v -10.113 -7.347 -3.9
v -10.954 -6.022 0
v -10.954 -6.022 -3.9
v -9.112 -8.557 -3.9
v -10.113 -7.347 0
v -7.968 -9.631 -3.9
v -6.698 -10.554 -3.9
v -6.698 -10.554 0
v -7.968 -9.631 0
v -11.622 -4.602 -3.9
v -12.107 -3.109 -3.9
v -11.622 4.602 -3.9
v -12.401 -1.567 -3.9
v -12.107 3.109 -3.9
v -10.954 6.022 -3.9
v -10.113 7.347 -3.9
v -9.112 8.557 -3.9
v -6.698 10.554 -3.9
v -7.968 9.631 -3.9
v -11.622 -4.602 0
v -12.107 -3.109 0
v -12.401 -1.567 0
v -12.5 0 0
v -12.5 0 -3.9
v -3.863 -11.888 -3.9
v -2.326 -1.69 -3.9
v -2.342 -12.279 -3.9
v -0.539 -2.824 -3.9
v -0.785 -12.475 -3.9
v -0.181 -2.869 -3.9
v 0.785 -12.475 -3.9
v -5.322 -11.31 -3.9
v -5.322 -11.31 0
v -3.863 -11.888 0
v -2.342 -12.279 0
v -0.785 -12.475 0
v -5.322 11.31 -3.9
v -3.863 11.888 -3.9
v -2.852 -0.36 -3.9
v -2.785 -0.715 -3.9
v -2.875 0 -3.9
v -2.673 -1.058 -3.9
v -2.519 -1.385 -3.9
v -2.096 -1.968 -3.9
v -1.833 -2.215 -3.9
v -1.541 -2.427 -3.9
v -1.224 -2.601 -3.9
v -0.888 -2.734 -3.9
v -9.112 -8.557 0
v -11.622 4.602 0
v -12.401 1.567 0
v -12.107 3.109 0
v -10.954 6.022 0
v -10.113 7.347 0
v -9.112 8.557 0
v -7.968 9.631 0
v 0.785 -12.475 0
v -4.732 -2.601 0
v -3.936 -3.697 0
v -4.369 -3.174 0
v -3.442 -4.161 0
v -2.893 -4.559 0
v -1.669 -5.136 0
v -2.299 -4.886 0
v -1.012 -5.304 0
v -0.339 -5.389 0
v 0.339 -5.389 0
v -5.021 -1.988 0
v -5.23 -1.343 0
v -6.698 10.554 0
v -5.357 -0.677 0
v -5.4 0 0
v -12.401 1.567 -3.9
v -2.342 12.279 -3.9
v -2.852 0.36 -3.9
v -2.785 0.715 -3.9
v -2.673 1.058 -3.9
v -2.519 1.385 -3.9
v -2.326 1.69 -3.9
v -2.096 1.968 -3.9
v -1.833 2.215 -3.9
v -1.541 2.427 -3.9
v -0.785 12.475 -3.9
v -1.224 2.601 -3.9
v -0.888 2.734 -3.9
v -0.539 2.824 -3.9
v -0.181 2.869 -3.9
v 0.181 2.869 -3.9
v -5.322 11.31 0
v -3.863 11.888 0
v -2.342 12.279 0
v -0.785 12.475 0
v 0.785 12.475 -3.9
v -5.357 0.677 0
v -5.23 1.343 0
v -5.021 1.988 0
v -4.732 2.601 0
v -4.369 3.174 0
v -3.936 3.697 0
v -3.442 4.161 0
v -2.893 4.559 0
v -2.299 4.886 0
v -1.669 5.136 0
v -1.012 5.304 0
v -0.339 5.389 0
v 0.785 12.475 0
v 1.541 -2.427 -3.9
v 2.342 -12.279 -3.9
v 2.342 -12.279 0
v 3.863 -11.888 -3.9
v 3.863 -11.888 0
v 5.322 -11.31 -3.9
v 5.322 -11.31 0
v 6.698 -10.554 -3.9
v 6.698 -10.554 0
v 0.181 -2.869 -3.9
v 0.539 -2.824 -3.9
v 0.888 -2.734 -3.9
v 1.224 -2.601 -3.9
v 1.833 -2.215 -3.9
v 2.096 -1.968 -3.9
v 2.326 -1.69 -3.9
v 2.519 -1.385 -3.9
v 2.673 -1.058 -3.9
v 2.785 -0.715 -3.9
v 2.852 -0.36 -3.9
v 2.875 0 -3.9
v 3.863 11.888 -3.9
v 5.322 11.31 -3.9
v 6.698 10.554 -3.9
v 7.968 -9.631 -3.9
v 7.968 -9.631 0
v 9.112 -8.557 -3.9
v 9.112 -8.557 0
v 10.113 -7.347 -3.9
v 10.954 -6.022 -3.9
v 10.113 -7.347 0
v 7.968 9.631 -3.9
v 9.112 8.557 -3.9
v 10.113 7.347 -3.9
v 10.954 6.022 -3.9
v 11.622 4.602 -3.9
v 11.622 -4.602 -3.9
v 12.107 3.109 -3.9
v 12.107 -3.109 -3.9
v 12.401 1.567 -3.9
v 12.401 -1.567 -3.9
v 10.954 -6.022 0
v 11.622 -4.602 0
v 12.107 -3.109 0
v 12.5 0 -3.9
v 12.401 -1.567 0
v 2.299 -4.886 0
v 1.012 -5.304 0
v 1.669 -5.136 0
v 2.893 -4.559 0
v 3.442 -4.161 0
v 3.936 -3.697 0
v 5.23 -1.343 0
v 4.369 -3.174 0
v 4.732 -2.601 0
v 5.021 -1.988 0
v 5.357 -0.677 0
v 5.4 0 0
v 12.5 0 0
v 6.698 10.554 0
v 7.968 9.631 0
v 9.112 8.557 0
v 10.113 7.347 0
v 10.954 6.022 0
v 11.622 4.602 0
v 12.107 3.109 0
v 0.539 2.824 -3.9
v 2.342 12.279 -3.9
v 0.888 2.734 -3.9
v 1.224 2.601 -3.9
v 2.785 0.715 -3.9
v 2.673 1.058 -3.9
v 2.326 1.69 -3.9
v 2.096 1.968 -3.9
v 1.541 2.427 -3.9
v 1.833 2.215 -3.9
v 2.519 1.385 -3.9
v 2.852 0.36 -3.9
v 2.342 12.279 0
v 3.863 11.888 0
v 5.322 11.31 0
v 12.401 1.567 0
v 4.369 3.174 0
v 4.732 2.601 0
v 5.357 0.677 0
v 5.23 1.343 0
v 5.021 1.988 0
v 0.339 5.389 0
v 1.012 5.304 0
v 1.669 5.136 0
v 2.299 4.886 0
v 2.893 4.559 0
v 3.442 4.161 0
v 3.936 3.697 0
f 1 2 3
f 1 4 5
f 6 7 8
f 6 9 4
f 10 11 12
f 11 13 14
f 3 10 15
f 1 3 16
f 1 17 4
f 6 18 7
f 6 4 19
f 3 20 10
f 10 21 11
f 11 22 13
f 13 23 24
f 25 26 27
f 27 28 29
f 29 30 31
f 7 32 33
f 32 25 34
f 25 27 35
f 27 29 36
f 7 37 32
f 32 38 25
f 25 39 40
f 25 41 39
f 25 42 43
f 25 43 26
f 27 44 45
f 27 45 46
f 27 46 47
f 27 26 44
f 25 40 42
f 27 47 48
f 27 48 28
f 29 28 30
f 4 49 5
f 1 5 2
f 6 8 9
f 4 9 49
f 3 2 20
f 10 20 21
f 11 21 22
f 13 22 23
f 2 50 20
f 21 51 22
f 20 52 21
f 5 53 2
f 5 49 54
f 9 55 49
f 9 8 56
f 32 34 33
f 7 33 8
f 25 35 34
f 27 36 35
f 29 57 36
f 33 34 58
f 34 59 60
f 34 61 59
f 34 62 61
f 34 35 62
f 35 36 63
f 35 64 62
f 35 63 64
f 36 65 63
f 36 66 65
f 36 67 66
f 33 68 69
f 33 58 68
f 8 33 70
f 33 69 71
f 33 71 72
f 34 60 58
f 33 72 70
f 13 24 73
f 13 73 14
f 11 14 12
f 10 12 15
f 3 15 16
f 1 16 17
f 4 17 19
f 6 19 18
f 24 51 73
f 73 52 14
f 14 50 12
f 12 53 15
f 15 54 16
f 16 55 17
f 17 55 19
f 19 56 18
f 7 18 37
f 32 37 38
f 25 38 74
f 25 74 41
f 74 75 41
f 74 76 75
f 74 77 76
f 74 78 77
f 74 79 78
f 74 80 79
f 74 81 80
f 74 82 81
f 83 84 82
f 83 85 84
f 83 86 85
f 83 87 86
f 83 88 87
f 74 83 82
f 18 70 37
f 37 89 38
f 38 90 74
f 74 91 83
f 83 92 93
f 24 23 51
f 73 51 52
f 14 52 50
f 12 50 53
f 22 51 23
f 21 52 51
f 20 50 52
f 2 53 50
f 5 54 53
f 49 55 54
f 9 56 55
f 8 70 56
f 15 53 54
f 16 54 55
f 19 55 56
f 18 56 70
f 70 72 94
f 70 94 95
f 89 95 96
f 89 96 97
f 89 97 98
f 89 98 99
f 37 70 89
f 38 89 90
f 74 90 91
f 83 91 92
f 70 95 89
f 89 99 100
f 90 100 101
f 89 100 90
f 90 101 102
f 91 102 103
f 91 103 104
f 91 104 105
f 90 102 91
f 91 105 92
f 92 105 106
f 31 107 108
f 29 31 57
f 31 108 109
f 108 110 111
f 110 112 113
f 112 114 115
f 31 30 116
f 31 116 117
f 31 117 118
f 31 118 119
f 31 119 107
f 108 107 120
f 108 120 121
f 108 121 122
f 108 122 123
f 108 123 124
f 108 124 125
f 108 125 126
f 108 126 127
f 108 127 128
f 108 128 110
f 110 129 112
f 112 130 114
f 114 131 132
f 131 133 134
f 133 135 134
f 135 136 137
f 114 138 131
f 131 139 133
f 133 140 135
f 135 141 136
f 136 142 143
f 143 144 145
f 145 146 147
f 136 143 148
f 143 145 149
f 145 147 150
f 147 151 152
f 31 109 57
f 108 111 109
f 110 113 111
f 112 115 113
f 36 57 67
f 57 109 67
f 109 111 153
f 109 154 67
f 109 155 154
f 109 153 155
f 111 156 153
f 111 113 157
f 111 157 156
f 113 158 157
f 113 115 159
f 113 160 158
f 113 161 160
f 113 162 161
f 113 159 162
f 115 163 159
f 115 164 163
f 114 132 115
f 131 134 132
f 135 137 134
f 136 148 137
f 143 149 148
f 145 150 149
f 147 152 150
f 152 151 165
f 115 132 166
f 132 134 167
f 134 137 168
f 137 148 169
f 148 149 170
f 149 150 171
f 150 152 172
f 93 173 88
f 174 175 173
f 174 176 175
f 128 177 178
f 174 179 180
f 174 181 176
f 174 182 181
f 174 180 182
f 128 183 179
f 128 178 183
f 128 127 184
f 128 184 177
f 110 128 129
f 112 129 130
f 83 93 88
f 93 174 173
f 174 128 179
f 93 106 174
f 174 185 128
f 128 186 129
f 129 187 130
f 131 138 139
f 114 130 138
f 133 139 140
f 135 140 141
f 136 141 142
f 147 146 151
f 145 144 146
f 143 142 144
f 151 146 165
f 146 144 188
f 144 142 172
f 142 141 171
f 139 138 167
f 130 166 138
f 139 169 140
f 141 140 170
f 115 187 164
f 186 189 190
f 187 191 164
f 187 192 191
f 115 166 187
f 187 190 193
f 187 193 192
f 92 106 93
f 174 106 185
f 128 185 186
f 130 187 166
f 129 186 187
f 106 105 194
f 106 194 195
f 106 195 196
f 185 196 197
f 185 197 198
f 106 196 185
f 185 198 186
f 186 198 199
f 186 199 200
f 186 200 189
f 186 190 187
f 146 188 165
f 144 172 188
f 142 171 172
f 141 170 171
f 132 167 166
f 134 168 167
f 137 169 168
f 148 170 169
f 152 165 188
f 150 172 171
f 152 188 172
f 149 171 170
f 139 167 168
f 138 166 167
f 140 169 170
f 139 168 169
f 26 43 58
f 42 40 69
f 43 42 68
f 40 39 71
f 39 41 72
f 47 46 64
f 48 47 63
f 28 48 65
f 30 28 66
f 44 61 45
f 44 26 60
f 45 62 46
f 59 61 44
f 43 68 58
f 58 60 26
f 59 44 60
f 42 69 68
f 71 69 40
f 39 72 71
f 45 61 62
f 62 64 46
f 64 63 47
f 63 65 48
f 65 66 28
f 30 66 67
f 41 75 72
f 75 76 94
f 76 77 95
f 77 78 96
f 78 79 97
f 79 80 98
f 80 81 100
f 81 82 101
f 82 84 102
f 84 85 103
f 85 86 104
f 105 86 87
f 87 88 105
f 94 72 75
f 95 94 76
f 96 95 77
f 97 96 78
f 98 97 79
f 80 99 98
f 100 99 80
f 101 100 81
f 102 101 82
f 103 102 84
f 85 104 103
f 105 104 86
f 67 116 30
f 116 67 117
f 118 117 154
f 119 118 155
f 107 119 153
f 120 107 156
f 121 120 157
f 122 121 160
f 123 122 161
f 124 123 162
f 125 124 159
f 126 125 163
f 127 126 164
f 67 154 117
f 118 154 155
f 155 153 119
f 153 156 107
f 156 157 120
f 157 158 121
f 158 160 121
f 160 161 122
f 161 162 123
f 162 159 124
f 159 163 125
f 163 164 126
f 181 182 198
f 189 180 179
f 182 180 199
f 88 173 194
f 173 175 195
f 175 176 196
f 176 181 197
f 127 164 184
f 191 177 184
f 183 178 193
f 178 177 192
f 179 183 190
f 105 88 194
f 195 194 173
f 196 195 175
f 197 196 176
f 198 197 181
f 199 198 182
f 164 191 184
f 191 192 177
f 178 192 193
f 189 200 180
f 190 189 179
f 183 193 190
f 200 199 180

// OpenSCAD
$fn = 50;

difference() {
	union() {
		translate(v = [0, 0, -3.9]) {
			cylinder(h = 3.9, r = 12.5);
		}
		#translate(v = [0, 0, -6.9]) {
			cylinder(h = 6.9, r = 2.875);
		}
	}
	union() {
		translate(v = [0, 0, 0]) {
			rotate(a = [0, 0, 0]) {
				difference() {
					union() {
						translate(v = [0, 0, -6.9]) {
							cylinder(h = 6.9, r = 2.6);
						}
						translate(v = [0, 0, -3.9]) {
							cylinder(h = 3.9, r1 = 2.875, r2 = 5.4);
						}
						translate(v = [0, 0, -6.9]) {
							cylinder(h = 6.9, r = 2.875);
						}
						translate(v = [0, 0, -6.9]) {
							cylinder(h = 6.9, r = 2.6);
						}
					}
					union();
				}
			}
		}
	}
}
